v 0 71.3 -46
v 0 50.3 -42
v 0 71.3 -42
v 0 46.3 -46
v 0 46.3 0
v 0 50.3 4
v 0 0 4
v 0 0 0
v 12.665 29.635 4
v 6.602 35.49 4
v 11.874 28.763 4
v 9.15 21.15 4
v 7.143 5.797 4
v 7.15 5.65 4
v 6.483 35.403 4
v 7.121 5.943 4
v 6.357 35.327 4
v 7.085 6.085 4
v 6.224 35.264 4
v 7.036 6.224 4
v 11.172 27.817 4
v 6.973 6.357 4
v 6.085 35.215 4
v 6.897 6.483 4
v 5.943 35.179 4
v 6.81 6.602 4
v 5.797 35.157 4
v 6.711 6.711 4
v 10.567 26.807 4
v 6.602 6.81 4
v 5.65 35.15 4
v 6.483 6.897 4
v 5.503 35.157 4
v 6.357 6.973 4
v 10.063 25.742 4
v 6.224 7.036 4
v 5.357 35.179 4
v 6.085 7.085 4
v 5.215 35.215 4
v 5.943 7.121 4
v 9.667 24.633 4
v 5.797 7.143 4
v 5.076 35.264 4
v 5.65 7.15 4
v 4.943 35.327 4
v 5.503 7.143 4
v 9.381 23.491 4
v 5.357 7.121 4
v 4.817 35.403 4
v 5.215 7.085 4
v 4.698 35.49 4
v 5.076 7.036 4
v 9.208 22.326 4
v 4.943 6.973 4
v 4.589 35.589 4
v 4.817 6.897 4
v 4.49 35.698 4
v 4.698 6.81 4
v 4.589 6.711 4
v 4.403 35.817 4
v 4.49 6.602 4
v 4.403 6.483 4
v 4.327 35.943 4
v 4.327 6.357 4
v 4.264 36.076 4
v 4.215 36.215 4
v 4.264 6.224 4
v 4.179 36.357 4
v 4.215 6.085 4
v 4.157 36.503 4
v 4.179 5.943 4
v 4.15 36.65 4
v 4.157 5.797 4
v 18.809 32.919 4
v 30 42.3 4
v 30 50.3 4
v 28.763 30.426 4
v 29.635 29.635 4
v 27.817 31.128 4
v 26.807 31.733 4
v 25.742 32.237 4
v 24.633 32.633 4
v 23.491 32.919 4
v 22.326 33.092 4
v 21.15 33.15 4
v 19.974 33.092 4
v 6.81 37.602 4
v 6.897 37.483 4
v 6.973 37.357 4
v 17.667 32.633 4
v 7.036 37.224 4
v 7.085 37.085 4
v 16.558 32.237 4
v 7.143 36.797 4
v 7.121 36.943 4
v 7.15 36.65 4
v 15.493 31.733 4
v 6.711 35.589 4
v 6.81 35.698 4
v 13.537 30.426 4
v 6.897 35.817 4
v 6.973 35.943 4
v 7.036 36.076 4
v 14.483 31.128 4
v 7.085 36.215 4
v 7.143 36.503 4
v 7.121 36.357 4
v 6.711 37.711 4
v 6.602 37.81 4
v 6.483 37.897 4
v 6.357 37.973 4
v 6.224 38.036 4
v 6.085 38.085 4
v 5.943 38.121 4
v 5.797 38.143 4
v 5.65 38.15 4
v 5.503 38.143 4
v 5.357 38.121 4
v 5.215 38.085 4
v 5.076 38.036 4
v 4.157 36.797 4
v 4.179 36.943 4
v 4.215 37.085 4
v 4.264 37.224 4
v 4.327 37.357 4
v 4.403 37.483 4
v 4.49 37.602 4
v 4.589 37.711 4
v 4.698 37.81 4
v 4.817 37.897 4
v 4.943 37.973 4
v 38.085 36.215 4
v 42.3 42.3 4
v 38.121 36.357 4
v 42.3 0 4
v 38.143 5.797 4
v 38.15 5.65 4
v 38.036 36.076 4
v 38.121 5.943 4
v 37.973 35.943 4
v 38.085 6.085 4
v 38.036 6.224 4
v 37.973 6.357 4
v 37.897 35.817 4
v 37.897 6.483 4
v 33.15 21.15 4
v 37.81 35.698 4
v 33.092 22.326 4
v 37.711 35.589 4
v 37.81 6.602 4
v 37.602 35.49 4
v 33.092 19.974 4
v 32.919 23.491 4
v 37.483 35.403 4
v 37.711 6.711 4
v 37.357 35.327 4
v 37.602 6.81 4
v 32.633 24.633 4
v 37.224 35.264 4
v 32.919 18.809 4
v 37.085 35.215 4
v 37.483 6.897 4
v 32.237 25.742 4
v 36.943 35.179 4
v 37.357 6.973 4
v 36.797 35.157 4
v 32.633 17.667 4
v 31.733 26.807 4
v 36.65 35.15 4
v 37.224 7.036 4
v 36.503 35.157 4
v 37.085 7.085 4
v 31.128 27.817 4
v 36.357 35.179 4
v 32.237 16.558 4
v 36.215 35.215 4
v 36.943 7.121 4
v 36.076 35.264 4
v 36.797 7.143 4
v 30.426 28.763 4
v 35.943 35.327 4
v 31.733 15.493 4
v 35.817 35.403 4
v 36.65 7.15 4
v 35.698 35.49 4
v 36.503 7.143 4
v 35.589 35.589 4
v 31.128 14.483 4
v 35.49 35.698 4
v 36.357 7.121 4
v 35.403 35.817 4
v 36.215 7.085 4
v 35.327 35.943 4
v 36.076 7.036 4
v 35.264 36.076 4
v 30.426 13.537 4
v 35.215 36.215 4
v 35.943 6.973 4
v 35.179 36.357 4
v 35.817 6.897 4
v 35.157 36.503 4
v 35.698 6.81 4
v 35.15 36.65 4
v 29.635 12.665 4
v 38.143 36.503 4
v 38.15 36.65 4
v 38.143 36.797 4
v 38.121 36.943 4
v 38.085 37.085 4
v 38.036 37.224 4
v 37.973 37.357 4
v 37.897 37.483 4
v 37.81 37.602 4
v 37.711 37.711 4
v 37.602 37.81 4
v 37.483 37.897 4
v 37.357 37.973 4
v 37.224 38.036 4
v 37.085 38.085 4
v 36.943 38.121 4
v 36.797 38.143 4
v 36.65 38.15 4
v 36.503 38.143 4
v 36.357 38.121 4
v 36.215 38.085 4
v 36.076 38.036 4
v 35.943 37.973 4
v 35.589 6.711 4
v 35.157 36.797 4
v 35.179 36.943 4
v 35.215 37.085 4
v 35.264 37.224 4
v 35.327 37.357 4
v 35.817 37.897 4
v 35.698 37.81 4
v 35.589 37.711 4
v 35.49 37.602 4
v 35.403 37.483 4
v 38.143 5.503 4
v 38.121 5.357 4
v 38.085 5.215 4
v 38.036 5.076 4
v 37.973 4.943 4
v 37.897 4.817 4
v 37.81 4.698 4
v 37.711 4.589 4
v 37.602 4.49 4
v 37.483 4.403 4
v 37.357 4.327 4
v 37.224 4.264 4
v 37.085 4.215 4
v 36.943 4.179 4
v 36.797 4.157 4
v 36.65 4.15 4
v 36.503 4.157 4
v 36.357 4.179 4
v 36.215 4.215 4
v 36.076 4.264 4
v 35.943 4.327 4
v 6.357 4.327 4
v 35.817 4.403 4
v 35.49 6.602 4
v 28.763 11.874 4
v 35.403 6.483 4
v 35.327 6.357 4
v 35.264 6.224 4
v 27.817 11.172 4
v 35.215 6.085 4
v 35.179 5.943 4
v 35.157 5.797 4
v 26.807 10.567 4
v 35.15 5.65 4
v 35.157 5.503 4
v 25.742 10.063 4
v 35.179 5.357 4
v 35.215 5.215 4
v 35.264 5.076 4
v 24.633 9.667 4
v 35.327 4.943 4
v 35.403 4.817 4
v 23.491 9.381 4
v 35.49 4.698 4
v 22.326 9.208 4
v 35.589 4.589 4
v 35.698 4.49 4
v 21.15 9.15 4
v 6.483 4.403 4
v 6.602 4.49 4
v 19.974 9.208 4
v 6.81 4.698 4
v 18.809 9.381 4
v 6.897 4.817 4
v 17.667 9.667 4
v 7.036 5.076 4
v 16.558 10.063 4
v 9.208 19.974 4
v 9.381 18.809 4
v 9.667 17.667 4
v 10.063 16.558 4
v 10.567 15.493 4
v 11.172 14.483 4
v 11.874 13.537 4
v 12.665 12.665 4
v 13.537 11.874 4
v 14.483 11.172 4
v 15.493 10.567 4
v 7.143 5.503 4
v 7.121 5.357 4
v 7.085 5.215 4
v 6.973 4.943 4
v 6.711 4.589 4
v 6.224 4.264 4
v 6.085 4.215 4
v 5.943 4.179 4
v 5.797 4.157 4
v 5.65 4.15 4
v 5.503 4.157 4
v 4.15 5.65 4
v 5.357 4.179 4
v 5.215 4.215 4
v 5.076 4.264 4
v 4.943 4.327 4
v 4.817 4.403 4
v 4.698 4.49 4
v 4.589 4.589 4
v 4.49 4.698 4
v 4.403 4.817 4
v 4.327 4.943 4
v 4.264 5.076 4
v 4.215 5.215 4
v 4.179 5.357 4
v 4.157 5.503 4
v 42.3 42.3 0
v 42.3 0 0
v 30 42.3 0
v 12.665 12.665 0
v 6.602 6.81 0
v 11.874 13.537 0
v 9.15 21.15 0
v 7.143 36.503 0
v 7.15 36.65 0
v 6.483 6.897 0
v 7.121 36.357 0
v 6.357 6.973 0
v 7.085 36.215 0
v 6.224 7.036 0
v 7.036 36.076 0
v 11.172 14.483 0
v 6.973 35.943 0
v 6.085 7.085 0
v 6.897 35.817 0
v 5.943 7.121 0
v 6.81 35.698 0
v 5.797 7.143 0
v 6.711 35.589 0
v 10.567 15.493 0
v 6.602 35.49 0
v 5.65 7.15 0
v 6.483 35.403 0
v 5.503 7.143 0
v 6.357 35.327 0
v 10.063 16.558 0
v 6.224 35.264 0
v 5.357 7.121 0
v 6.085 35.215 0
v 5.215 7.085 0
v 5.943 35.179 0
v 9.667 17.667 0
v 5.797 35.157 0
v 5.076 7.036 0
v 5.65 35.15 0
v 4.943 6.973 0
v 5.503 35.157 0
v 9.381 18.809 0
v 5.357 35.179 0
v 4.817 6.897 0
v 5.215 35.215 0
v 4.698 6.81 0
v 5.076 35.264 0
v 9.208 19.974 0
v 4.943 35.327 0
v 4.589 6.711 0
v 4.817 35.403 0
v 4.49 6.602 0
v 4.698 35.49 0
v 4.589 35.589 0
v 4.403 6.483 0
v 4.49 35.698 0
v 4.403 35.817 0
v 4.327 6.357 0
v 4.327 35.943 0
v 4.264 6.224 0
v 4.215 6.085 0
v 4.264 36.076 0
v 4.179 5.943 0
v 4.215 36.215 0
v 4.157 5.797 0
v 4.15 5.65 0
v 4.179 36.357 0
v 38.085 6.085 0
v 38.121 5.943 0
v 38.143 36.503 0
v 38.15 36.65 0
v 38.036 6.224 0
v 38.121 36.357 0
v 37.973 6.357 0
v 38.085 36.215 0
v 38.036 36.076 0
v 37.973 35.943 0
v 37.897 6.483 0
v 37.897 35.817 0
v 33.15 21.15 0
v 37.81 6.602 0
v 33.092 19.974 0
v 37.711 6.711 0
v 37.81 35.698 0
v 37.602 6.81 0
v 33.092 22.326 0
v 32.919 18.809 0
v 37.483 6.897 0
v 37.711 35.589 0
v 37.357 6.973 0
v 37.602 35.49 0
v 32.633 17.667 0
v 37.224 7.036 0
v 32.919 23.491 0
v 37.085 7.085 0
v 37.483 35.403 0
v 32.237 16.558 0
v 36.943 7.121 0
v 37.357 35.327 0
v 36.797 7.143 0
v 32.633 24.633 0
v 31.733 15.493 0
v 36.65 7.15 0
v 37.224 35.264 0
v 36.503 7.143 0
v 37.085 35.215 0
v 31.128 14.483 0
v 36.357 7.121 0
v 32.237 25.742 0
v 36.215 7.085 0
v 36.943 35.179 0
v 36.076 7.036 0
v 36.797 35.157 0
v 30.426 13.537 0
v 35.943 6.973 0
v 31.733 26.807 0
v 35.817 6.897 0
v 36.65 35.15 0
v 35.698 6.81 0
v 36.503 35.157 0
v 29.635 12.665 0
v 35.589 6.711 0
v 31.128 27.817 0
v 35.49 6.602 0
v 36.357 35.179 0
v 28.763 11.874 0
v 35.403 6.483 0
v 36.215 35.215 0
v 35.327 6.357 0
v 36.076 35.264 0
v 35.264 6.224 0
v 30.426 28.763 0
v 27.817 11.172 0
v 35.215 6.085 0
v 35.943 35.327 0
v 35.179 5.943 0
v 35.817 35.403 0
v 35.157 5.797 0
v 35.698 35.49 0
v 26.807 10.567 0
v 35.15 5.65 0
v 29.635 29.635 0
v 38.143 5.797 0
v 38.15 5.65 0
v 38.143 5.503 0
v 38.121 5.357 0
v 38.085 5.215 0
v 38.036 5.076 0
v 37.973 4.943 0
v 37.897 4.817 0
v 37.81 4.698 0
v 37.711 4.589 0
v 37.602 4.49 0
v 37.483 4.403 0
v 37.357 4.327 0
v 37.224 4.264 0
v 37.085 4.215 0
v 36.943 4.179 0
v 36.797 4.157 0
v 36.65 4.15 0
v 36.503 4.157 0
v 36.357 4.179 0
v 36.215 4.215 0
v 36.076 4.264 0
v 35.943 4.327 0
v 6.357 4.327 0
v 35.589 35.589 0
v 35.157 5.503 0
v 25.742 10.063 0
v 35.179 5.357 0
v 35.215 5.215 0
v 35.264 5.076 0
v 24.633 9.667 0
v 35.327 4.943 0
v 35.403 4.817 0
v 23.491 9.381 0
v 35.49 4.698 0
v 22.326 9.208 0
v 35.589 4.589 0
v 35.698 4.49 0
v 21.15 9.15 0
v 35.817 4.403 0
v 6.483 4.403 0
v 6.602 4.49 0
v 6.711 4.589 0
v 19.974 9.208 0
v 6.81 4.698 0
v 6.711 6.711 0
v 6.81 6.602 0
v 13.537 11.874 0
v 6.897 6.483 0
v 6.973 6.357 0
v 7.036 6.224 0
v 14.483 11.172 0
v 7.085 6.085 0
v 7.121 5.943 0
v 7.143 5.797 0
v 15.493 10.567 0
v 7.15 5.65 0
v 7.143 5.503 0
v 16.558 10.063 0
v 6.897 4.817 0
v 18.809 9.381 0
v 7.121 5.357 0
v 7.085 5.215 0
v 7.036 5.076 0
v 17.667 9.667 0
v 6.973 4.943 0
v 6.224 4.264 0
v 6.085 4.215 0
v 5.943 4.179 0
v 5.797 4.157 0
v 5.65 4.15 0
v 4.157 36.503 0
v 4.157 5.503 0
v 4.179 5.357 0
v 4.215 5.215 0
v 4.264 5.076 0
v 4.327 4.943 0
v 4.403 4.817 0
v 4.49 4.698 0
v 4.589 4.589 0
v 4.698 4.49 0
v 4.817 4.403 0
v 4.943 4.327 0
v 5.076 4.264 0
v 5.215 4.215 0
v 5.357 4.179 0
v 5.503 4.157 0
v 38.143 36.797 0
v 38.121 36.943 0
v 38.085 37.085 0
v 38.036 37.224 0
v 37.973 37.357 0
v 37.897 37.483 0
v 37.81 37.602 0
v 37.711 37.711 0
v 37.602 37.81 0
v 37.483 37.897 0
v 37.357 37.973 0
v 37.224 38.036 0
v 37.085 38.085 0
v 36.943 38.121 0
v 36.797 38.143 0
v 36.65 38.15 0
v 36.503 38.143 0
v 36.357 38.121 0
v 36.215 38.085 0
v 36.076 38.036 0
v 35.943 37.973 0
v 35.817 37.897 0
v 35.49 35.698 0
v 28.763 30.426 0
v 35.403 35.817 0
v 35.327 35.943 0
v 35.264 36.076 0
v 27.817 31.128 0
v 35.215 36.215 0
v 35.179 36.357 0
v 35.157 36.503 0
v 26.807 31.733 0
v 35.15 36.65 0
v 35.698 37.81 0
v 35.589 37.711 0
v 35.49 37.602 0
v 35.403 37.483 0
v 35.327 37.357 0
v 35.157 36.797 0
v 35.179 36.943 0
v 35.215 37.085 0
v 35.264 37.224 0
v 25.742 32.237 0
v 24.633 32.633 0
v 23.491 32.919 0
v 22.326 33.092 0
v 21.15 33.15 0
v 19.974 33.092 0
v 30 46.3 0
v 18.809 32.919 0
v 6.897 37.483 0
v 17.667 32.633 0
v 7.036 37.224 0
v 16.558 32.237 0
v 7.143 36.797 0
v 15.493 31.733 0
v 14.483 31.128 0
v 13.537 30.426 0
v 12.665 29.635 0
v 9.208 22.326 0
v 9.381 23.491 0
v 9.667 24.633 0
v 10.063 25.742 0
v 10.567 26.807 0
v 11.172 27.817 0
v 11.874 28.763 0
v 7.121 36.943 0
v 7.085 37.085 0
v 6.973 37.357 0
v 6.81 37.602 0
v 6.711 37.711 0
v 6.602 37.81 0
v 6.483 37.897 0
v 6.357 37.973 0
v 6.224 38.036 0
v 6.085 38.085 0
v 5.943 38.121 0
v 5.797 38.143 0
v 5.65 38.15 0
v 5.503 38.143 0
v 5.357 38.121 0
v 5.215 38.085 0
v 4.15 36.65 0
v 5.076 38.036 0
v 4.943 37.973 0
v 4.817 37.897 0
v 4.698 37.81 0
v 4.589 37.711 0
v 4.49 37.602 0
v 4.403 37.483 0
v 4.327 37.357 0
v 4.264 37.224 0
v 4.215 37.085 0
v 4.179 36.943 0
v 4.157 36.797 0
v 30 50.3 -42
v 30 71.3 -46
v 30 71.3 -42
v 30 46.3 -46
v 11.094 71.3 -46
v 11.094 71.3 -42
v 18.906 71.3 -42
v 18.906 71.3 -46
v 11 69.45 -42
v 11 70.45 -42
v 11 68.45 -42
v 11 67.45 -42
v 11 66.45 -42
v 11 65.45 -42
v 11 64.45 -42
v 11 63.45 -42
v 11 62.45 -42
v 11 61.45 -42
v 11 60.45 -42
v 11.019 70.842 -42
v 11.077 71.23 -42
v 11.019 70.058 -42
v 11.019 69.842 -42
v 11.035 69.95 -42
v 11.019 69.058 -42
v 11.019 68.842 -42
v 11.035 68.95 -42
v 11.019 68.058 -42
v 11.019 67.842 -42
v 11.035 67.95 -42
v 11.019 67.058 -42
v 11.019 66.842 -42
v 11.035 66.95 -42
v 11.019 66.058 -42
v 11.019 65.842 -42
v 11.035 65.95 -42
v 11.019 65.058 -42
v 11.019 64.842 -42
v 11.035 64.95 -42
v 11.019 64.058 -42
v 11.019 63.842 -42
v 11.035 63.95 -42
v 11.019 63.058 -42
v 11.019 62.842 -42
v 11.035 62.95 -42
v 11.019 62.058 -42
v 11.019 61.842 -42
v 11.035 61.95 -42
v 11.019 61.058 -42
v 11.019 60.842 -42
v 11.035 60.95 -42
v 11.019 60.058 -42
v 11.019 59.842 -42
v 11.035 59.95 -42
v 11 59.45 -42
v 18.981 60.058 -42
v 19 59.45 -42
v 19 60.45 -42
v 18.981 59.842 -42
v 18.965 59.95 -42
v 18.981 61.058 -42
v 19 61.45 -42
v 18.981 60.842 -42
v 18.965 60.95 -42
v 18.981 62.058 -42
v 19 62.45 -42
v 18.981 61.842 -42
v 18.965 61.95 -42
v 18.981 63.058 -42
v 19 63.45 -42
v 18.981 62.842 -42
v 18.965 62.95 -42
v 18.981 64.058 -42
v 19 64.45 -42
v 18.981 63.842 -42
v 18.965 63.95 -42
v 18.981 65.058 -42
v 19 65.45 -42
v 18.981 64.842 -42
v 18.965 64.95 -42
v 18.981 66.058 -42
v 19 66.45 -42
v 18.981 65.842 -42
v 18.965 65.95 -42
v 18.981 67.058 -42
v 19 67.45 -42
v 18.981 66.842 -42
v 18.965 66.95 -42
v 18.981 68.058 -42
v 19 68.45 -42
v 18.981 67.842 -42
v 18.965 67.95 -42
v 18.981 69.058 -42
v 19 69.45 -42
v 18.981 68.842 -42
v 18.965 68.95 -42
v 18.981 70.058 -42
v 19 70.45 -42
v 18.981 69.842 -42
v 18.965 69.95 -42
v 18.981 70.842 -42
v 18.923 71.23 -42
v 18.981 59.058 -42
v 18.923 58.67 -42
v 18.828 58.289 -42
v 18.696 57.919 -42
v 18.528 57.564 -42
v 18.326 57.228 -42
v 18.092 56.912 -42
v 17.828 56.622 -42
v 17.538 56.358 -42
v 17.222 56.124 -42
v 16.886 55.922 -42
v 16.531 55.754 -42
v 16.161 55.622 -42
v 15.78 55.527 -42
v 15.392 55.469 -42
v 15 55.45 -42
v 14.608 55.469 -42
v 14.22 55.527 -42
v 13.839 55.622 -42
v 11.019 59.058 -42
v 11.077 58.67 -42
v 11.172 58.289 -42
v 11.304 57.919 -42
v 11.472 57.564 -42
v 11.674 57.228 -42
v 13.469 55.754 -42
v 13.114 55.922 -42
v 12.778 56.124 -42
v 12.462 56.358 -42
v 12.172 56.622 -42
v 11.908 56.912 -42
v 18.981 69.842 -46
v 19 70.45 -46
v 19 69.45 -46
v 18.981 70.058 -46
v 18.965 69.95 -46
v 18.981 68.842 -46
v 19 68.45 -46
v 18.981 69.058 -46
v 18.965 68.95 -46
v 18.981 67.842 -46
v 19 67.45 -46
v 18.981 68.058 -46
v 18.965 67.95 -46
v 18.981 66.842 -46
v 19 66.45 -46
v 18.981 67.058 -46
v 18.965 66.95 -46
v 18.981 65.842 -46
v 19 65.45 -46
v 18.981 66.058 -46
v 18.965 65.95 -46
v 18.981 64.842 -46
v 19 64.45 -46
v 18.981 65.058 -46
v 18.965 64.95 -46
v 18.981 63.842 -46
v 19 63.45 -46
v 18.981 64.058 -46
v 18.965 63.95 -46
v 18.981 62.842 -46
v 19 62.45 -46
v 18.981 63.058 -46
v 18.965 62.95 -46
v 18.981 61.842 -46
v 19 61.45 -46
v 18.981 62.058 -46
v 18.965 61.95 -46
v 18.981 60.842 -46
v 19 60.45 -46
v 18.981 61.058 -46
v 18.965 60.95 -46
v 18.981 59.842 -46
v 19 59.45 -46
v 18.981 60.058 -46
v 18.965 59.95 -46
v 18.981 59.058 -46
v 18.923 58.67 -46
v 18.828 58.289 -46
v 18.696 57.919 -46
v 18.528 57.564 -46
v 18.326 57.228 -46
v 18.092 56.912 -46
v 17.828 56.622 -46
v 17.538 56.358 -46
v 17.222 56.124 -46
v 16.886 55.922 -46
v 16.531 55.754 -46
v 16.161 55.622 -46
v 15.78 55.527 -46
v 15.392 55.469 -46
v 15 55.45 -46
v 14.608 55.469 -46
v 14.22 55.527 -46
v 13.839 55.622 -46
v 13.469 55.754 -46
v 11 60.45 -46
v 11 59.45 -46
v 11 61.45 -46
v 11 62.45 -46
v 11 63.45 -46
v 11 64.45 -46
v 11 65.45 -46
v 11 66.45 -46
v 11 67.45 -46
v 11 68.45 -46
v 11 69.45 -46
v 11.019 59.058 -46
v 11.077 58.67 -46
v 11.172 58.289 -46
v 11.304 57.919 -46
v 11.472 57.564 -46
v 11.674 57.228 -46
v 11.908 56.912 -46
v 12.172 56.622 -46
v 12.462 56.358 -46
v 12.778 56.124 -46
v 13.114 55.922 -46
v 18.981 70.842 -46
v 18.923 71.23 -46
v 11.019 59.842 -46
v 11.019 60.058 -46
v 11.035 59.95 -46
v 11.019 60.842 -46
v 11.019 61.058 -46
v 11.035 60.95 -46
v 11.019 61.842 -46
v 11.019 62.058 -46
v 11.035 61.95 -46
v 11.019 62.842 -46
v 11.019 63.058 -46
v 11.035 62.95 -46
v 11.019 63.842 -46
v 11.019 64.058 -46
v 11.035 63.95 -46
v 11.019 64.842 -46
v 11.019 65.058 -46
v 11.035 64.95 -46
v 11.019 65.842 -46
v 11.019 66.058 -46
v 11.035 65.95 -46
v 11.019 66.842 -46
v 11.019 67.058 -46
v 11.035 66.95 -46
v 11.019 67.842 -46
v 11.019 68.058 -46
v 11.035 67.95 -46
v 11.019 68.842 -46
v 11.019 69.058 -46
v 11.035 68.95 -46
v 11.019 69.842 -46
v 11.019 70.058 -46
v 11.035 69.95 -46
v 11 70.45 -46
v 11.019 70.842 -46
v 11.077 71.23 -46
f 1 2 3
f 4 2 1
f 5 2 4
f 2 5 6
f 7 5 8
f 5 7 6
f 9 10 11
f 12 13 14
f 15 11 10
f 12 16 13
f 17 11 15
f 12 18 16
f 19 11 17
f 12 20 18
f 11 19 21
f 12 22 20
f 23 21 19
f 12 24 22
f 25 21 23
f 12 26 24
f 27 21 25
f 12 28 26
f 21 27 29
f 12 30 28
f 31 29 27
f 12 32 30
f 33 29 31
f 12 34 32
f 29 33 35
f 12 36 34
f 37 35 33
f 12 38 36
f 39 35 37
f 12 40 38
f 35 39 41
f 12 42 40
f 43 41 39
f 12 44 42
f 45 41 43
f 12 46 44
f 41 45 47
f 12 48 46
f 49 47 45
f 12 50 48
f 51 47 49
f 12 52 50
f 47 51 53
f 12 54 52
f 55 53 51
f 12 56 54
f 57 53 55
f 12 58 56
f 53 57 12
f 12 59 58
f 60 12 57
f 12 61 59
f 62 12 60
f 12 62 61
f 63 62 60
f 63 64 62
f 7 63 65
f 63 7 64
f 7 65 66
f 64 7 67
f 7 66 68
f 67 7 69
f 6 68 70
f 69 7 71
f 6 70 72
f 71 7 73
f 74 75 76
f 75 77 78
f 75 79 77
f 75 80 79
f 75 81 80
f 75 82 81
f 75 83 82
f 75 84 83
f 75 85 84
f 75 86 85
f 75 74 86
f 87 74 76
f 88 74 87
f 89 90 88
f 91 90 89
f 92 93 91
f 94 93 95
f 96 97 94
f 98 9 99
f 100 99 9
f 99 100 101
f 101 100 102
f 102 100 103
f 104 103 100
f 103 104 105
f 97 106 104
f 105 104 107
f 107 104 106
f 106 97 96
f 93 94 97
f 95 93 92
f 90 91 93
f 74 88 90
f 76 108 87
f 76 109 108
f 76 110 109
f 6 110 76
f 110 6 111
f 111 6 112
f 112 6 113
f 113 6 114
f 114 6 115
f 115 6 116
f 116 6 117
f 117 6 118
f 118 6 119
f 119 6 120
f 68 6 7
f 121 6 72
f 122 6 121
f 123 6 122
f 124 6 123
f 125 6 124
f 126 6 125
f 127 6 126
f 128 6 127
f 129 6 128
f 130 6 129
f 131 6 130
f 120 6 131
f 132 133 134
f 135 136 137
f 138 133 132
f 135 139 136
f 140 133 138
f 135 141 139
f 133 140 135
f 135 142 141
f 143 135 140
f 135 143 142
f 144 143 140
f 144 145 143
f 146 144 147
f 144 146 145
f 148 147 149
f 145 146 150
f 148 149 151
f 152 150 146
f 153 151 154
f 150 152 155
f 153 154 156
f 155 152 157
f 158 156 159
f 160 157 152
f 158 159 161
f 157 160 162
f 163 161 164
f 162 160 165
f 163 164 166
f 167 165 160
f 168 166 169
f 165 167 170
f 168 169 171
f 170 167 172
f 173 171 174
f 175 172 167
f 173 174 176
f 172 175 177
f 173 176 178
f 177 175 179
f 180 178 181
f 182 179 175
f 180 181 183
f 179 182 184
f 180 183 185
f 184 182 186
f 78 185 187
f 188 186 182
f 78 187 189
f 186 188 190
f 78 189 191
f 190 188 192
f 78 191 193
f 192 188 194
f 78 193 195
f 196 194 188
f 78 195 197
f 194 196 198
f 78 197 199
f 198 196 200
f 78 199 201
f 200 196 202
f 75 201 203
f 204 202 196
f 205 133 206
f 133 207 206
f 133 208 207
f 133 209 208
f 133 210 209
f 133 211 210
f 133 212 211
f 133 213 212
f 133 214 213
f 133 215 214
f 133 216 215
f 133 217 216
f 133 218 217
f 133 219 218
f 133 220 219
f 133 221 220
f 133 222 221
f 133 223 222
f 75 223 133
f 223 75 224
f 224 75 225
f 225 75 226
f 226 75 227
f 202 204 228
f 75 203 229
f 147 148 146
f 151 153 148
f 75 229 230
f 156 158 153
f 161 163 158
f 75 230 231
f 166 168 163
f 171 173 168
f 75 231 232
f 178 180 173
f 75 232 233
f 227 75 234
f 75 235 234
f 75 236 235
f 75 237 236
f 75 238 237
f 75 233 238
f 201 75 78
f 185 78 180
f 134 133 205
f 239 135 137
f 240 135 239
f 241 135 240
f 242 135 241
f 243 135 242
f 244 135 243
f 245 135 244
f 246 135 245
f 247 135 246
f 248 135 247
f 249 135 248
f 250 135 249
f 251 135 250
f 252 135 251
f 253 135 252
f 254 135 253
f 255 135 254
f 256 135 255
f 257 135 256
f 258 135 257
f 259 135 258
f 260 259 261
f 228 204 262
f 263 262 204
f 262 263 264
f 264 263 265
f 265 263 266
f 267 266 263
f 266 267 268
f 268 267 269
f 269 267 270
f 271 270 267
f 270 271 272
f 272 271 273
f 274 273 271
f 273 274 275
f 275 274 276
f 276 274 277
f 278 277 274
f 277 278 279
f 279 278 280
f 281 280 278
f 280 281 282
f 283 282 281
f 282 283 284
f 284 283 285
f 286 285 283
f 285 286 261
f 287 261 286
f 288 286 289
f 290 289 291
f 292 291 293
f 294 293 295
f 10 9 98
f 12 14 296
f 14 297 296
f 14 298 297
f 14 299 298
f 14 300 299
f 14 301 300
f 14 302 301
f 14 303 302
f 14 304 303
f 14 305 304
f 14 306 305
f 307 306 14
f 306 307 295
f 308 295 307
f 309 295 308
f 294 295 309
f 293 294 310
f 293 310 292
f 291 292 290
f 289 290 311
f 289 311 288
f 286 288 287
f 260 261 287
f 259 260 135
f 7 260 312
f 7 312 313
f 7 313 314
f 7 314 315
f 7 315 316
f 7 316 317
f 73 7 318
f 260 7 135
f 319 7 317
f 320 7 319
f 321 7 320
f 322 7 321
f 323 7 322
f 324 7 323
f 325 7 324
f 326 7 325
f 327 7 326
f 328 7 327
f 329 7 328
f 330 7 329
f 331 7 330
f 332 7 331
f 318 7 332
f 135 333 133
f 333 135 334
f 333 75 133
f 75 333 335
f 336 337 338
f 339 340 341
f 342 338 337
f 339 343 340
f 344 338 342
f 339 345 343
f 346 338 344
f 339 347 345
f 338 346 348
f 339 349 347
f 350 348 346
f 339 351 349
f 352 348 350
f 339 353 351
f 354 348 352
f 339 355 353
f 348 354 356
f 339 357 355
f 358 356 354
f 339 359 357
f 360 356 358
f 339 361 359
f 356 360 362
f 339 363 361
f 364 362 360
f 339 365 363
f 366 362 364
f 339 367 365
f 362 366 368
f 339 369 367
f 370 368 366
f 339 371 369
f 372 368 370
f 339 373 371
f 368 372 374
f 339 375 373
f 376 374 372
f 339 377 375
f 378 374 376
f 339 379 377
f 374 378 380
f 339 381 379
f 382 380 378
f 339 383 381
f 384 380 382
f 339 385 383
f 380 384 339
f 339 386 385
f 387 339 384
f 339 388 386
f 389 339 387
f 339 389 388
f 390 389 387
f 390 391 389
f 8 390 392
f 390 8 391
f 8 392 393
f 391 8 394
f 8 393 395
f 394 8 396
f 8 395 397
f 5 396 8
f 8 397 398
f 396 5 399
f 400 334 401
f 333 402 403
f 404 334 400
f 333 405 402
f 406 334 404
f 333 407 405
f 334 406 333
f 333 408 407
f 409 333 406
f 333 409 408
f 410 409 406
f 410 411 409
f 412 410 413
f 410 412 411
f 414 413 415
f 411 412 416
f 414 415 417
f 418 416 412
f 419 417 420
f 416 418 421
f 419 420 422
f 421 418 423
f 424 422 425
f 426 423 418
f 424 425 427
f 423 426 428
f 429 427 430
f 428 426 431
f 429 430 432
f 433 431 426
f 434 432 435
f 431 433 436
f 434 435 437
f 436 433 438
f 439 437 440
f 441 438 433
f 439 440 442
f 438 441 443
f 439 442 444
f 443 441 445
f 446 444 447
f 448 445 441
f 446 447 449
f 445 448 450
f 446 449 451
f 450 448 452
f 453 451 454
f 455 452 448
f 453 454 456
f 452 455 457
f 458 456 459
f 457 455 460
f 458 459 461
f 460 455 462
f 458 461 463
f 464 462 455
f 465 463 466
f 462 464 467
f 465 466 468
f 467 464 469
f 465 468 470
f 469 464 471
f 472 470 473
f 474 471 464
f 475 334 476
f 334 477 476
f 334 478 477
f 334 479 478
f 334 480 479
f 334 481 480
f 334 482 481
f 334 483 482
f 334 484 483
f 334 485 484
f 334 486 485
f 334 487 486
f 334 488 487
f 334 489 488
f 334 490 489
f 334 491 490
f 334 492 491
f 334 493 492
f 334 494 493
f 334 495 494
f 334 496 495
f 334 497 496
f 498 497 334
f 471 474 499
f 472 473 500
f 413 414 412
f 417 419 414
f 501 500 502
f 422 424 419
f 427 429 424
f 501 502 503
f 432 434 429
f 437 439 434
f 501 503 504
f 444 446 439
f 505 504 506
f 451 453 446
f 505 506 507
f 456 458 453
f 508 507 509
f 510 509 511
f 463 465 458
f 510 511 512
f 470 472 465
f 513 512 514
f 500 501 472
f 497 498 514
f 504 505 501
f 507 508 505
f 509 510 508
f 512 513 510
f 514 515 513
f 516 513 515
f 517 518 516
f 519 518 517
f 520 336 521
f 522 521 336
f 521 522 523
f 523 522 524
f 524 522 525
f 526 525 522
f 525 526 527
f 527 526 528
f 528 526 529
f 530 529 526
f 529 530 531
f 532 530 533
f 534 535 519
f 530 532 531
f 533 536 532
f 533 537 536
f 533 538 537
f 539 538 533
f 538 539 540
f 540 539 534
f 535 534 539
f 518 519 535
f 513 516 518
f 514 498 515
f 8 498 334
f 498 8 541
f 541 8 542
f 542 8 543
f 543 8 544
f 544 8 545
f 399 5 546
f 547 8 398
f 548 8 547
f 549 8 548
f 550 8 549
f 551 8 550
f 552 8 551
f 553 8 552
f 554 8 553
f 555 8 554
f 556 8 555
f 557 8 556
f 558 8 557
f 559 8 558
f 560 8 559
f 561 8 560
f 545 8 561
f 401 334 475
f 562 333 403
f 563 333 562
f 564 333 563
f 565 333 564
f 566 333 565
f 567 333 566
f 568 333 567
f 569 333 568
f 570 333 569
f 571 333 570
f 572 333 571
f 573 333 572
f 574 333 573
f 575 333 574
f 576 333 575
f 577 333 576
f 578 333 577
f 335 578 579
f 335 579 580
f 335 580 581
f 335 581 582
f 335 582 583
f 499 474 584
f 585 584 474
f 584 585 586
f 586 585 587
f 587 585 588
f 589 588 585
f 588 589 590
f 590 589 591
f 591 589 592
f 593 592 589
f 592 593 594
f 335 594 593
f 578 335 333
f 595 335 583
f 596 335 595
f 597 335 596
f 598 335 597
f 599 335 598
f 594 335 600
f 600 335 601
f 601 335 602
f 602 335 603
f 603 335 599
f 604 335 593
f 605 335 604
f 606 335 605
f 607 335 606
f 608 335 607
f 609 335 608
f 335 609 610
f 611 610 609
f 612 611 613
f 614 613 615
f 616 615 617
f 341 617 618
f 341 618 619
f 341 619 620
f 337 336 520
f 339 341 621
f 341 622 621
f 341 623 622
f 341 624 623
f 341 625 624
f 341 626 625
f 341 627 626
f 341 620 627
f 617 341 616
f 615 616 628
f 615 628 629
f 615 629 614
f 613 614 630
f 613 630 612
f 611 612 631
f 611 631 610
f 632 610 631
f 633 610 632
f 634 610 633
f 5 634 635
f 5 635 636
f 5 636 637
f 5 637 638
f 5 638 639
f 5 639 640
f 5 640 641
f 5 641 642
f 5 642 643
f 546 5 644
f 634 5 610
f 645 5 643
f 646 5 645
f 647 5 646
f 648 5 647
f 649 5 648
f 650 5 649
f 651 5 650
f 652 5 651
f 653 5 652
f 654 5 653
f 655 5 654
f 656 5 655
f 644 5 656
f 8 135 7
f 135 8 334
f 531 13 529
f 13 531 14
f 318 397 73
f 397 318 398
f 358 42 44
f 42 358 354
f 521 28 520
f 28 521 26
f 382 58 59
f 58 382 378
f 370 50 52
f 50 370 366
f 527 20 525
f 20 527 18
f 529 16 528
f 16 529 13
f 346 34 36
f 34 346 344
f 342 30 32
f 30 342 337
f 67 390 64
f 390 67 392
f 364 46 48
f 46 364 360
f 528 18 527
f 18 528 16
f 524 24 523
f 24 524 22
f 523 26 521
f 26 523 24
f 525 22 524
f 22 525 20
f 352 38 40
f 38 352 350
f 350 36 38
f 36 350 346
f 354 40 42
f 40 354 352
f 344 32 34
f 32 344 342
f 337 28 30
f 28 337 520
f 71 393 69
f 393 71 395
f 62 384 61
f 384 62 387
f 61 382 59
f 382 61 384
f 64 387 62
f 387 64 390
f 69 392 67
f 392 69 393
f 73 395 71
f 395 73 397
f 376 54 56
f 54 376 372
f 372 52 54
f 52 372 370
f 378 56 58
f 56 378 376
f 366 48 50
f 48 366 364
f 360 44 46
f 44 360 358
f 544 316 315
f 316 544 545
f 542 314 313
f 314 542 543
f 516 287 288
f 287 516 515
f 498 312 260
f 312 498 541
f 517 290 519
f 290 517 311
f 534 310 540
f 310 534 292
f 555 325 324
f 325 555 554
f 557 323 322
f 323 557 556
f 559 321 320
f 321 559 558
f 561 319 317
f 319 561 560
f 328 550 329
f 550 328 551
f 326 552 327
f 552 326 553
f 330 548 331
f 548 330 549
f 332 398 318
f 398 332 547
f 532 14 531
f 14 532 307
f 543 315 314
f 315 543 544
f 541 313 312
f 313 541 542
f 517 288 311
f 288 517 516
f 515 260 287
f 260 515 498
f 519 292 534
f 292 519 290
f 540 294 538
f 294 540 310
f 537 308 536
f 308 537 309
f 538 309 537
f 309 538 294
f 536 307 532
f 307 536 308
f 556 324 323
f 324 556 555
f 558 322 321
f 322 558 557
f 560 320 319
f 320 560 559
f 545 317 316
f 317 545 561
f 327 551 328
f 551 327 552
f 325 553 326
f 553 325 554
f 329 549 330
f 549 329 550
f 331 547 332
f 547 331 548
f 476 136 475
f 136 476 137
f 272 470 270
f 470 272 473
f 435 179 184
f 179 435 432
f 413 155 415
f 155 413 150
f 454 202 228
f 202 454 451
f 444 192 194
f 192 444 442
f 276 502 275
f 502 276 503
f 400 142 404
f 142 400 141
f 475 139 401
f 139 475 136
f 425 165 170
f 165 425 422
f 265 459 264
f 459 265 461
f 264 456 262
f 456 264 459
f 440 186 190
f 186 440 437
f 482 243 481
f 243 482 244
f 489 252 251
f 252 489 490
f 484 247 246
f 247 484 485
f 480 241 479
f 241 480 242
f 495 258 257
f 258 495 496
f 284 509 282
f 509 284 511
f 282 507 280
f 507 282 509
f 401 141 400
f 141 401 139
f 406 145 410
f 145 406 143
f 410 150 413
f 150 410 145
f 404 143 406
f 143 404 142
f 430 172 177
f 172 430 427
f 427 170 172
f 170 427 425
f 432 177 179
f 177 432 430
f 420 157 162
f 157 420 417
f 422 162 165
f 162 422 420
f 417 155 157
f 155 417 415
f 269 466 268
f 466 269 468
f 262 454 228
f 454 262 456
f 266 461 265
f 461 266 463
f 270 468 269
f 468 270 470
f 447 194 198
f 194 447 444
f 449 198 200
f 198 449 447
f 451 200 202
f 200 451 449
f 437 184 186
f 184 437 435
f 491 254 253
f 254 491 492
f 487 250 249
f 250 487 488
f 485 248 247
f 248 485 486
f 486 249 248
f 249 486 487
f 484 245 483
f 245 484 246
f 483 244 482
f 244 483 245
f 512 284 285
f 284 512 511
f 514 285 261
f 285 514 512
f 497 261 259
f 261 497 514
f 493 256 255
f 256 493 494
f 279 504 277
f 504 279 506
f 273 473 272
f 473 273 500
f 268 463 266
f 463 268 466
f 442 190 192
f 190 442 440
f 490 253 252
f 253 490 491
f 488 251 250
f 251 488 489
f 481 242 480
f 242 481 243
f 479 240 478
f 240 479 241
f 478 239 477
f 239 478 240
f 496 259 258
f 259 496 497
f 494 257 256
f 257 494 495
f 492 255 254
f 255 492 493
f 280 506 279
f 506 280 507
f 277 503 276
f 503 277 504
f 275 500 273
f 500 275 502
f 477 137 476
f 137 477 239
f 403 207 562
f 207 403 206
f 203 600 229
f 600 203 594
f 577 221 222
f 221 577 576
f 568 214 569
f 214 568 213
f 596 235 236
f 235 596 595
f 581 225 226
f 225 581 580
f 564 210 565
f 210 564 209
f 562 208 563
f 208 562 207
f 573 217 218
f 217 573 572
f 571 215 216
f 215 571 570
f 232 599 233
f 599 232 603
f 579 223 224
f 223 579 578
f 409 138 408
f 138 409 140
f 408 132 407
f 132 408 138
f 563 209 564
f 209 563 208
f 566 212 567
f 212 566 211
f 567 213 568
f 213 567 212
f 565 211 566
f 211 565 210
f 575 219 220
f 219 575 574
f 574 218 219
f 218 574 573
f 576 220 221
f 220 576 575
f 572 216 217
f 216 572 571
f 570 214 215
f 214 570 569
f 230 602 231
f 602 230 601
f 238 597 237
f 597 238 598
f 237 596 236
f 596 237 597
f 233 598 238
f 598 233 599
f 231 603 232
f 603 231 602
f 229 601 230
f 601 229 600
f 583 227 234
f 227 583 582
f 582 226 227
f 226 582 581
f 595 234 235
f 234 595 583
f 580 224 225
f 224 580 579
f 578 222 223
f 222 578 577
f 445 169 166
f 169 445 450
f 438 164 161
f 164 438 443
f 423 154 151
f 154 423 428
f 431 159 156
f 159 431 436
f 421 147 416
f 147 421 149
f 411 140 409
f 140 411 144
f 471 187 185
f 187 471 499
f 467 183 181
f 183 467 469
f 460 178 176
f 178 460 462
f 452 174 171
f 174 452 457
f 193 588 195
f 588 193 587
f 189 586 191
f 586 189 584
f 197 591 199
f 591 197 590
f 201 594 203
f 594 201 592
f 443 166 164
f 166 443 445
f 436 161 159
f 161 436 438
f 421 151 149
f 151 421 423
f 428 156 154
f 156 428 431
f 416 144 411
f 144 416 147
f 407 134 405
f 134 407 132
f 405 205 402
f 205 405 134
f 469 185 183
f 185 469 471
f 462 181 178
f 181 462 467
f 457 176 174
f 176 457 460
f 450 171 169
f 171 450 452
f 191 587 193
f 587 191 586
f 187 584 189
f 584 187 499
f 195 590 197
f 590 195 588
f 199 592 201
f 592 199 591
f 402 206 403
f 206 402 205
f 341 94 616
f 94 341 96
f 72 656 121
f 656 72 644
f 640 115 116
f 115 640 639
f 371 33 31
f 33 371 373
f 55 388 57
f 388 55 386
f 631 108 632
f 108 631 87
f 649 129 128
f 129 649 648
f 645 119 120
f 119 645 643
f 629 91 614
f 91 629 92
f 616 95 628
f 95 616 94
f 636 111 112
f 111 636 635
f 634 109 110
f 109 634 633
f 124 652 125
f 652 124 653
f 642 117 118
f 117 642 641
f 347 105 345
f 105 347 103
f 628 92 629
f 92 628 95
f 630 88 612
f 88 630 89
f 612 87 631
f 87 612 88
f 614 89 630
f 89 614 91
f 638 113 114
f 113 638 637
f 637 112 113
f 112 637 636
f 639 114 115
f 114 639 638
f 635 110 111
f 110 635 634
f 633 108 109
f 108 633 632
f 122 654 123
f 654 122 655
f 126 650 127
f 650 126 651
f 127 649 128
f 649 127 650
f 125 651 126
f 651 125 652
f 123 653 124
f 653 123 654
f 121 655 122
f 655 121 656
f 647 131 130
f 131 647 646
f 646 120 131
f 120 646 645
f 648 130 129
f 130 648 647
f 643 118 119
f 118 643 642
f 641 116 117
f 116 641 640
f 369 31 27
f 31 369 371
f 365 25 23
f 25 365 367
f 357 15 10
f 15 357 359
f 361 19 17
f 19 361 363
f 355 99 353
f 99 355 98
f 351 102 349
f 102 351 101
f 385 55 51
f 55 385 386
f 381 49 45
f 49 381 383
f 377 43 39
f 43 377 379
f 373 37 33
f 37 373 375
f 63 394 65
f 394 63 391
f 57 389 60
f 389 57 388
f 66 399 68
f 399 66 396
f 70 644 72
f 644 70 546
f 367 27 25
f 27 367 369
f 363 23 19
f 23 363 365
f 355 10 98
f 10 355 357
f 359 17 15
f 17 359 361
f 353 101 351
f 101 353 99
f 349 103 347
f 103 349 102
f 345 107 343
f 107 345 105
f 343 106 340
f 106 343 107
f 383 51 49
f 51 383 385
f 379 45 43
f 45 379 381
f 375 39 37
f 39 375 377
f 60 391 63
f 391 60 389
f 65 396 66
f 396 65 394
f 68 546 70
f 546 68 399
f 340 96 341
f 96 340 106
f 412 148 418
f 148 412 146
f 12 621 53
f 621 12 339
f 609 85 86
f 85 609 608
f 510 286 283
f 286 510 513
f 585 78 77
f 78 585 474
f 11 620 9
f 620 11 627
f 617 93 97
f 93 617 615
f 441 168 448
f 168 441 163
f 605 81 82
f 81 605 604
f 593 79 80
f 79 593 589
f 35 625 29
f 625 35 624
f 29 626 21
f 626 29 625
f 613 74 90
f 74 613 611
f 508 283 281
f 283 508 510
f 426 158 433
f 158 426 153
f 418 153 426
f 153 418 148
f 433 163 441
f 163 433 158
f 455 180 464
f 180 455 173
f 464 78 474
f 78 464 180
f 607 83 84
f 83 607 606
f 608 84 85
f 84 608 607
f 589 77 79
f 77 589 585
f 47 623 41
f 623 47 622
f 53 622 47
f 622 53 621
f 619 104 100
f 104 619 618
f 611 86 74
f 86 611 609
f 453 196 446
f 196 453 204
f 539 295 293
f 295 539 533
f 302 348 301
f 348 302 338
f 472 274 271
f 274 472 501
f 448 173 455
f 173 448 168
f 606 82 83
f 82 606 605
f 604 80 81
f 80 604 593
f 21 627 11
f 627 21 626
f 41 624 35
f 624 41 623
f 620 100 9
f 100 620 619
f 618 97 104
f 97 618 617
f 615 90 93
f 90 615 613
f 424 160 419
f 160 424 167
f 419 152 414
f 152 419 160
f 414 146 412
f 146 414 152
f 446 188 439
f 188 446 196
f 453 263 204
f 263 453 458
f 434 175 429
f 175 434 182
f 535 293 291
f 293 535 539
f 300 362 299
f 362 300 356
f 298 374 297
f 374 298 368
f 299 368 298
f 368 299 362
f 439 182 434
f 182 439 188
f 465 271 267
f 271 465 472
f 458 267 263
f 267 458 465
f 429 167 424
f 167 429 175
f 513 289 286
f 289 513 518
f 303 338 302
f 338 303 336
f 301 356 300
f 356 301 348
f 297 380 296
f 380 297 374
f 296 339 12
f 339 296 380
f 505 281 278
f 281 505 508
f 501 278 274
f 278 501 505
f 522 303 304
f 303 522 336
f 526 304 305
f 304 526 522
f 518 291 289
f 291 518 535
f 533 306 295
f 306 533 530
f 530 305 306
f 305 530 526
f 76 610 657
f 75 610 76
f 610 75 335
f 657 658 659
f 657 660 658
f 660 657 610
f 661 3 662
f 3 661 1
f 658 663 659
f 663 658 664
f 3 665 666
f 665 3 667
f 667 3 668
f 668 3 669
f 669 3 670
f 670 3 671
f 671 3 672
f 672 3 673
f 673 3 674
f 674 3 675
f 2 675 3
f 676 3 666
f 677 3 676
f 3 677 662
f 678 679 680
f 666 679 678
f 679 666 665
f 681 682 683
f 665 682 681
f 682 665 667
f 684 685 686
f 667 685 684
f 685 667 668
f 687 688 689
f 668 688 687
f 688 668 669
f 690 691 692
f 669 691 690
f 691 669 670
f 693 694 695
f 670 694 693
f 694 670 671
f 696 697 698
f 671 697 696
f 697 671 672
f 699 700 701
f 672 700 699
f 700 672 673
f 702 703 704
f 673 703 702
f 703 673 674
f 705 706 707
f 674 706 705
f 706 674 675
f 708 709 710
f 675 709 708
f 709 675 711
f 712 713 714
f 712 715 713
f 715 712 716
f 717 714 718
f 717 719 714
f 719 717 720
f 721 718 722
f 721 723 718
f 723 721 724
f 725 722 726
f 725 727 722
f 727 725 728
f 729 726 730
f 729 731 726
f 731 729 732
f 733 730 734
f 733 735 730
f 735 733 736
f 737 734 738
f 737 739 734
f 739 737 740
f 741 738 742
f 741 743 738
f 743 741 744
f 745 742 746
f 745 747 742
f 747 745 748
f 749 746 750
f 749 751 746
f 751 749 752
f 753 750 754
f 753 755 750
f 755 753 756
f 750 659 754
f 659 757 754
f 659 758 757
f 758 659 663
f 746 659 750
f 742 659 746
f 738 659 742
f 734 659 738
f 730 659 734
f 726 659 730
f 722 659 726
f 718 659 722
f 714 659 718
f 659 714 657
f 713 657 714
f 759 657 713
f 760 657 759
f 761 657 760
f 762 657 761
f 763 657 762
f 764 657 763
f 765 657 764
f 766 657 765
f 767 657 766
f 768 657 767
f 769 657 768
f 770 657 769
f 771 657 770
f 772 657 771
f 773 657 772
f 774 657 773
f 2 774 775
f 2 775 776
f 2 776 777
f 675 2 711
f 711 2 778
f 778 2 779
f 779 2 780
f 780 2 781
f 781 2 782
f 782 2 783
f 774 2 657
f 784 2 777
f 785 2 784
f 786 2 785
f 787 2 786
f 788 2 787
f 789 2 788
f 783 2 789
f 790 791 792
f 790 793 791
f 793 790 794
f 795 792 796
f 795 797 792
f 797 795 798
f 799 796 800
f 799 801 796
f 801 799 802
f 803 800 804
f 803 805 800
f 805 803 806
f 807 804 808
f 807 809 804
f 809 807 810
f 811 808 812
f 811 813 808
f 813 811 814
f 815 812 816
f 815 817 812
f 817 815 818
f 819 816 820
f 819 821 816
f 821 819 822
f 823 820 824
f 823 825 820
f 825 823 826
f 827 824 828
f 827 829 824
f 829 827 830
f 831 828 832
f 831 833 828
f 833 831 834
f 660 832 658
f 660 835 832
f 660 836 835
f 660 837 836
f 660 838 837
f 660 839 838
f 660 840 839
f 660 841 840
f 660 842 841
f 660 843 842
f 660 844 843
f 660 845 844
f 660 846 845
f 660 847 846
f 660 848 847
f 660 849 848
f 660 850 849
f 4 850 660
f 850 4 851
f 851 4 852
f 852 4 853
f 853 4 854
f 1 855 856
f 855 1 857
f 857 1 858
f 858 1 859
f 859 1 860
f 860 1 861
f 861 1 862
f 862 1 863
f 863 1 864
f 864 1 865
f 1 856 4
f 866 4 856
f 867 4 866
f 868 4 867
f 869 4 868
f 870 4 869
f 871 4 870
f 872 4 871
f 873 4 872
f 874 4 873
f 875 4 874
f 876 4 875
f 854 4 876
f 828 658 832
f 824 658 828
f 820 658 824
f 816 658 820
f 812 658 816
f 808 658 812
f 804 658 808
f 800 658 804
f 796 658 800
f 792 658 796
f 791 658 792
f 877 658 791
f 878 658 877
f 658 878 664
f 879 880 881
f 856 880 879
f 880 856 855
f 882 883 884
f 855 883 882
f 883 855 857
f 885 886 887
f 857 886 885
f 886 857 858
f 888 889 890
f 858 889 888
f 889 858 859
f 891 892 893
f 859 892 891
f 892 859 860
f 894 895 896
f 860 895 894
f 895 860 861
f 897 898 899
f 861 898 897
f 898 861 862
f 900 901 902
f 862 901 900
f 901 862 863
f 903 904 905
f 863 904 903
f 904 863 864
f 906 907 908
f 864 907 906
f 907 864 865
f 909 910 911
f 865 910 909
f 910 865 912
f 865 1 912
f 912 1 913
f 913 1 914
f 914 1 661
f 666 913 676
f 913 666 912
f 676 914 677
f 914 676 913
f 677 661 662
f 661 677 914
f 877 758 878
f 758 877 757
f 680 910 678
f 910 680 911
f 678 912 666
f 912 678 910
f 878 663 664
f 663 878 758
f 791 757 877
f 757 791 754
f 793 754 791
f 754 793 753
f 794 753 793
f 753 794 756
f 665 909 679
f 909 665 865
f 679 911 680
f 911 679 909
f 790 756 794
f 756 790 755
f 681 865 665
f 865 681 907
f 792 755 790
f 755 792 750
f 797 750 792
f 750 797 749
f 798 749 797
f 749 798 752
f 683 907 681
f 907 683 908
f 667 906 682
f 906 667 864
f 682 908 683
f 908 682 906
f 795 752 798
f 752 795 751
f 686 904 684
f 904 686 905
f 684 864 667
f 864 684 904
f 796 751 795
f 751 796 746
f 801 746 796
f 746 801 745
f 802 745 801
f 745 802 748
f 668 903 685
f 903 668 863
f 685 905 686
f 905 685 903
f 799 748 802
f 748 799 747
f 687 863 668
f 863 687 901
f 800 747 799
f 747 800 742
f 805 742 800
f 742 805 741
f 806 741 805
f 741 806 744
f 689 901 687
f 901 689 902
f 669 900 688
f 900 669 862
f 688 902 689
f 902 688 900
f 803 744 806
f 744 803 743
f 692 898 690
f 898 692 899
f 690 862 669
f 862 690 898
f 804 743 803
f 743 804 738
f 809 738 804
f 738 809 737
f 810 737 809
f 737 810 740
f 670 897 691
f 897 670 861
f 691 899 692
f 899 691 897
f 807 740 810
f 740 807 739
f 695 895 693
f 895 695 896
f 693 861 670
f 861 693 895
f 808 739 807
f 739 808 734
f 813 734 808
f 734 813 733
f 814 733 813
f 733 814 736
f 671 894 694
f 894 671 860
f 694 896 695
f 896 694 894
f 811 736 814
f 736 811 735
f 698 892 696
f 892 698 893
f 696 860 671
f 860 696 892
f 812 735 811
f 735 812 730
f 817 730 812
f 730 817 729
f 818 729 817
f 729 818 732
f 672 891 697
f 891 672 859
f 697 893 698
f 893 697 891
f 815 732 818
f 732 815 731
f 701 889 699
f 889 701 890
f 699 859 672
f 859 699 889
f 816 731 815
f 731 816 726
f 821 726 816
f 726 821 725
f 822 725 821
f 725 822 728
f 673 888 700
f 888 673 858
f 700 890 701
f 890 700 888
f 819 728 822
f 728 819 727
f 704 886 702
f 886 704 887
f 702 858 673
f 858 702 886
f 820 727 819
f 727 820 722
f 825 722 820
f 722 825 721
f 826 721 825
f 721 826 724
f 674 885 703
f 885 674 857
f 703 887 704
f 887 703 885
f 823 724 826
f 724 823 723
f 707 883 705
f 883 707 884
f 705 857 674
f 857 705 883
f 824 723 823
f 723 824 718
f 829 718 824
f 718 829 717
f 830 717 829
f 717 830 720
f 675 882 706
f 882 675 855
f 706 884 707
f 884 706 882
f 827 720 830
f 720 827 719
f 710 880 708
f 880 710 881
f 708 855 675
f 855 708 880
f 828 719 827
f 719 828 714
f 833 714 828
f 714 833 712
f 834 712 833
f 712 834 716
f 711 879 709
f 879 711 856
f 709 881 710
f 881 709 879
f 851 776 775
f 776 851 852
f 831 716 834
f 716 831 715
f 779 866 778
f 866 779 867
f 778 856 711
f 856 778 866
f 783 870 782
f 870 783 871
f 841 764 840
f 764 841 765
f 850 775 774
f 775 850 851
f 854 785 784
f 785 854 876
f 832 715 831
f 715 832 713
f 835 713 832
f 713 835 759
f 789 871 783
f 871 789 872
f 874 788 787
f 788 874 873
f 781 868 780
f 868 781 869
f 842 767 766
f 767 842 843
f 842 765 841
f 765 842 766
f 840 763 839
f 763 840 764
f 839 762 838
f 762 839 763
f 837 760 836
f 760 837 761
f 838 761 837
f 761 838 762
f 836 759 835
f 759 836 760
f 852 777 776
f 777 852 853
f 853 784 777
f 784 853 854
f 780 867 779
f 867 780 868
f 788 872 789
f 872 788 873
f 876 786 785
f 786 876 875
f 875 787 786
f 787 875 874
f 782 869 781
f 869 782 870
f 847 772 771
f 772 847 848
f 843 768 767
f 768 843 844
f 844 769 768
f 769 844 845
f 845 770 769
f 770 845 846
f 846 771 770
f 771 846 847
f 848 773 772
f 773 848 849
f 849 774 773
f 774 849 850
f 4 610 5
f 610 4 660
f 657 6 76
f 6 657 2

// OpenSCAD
$fn=64;
md = 42.3;
w=4;
f=1.5;
shaft=12;

difference() {
    
    cube([md, md, w]);
    
    translate([md/2-15.5, md/2-15.5, -3])
    cylinder(r=f, h=10);

    translate([md/2+15.5, md/2-15.5, -3])
    cylinder(r=f, h=10);

    translate([md/2+15.5, md/2+15.5, -3])
    cylinder(r=f, h=10);

    translate([md/2-15.5, md/2+15.5, -3])
    cylinder(r=f, h=10);
    
    // furo do shaft
    translate([md/2, md/2, -3])
    cylinder(r=shaft, h=10);


}

translate([0, md, 0])
cube([30, w, w]);

translate([0, md+w, w-50])
cube([30, w, 50]);

translate([30, md+w, w-50])
rotate([-90,180,0])
hook();

//translate([md/2-15, -39, 0])
//cube([30, 40, w]);

module hook() {
    difference() {
        cube([30, w, 25]);

        rotate([90,0,0])
        translate([30/2, md/2+3, -7])
        cylinder(r=4, h=10);
        rotate([90,0,0])
        translate([30/2, md/2+2, -7])
        cylinder(r=4, h=10);
        rotate([90,0,0])
        translate([30/2, md/2+1, -7])
        cylinder(r=4, h=10);
        rotate([90,0,0])
        translate([30/2, md/2, -7])
        cylinder(r=4, h=10);
        rotate([90,0,0])
        translate([30/2, md/2-1, -7])
        cylinder(r=4, h=10);
        rotate([90,0,0])
        translate([30/2, md/2-2, -7])
        cylinder(r=4, h=10);
        rotate([90,0,0])
        translate([30/2, md/2-3, -7])
        cylinder(r=4, h=10);
        rotate([90,0,0])
        translate([30/2, md/2-4, -7])
        cylinder(r=4, h=10);
        rotate([90,0,0])
        translate([30/2, md/2-5, -7])
        cylinder(r=4, h=10);
        rotate([90,0,0])
        translate([30/2, md/2-6, -7])
        cylinder(r=4, h=10);
        rotate([90,0,0])
        translate([30/2, md/2-7, -7])
        cylinder(r=4, h=10);
        rotate([90,0,0])
        translate([30/2, md/2-8, -7])
        cylinder(r=4, h=10);
    }
}
